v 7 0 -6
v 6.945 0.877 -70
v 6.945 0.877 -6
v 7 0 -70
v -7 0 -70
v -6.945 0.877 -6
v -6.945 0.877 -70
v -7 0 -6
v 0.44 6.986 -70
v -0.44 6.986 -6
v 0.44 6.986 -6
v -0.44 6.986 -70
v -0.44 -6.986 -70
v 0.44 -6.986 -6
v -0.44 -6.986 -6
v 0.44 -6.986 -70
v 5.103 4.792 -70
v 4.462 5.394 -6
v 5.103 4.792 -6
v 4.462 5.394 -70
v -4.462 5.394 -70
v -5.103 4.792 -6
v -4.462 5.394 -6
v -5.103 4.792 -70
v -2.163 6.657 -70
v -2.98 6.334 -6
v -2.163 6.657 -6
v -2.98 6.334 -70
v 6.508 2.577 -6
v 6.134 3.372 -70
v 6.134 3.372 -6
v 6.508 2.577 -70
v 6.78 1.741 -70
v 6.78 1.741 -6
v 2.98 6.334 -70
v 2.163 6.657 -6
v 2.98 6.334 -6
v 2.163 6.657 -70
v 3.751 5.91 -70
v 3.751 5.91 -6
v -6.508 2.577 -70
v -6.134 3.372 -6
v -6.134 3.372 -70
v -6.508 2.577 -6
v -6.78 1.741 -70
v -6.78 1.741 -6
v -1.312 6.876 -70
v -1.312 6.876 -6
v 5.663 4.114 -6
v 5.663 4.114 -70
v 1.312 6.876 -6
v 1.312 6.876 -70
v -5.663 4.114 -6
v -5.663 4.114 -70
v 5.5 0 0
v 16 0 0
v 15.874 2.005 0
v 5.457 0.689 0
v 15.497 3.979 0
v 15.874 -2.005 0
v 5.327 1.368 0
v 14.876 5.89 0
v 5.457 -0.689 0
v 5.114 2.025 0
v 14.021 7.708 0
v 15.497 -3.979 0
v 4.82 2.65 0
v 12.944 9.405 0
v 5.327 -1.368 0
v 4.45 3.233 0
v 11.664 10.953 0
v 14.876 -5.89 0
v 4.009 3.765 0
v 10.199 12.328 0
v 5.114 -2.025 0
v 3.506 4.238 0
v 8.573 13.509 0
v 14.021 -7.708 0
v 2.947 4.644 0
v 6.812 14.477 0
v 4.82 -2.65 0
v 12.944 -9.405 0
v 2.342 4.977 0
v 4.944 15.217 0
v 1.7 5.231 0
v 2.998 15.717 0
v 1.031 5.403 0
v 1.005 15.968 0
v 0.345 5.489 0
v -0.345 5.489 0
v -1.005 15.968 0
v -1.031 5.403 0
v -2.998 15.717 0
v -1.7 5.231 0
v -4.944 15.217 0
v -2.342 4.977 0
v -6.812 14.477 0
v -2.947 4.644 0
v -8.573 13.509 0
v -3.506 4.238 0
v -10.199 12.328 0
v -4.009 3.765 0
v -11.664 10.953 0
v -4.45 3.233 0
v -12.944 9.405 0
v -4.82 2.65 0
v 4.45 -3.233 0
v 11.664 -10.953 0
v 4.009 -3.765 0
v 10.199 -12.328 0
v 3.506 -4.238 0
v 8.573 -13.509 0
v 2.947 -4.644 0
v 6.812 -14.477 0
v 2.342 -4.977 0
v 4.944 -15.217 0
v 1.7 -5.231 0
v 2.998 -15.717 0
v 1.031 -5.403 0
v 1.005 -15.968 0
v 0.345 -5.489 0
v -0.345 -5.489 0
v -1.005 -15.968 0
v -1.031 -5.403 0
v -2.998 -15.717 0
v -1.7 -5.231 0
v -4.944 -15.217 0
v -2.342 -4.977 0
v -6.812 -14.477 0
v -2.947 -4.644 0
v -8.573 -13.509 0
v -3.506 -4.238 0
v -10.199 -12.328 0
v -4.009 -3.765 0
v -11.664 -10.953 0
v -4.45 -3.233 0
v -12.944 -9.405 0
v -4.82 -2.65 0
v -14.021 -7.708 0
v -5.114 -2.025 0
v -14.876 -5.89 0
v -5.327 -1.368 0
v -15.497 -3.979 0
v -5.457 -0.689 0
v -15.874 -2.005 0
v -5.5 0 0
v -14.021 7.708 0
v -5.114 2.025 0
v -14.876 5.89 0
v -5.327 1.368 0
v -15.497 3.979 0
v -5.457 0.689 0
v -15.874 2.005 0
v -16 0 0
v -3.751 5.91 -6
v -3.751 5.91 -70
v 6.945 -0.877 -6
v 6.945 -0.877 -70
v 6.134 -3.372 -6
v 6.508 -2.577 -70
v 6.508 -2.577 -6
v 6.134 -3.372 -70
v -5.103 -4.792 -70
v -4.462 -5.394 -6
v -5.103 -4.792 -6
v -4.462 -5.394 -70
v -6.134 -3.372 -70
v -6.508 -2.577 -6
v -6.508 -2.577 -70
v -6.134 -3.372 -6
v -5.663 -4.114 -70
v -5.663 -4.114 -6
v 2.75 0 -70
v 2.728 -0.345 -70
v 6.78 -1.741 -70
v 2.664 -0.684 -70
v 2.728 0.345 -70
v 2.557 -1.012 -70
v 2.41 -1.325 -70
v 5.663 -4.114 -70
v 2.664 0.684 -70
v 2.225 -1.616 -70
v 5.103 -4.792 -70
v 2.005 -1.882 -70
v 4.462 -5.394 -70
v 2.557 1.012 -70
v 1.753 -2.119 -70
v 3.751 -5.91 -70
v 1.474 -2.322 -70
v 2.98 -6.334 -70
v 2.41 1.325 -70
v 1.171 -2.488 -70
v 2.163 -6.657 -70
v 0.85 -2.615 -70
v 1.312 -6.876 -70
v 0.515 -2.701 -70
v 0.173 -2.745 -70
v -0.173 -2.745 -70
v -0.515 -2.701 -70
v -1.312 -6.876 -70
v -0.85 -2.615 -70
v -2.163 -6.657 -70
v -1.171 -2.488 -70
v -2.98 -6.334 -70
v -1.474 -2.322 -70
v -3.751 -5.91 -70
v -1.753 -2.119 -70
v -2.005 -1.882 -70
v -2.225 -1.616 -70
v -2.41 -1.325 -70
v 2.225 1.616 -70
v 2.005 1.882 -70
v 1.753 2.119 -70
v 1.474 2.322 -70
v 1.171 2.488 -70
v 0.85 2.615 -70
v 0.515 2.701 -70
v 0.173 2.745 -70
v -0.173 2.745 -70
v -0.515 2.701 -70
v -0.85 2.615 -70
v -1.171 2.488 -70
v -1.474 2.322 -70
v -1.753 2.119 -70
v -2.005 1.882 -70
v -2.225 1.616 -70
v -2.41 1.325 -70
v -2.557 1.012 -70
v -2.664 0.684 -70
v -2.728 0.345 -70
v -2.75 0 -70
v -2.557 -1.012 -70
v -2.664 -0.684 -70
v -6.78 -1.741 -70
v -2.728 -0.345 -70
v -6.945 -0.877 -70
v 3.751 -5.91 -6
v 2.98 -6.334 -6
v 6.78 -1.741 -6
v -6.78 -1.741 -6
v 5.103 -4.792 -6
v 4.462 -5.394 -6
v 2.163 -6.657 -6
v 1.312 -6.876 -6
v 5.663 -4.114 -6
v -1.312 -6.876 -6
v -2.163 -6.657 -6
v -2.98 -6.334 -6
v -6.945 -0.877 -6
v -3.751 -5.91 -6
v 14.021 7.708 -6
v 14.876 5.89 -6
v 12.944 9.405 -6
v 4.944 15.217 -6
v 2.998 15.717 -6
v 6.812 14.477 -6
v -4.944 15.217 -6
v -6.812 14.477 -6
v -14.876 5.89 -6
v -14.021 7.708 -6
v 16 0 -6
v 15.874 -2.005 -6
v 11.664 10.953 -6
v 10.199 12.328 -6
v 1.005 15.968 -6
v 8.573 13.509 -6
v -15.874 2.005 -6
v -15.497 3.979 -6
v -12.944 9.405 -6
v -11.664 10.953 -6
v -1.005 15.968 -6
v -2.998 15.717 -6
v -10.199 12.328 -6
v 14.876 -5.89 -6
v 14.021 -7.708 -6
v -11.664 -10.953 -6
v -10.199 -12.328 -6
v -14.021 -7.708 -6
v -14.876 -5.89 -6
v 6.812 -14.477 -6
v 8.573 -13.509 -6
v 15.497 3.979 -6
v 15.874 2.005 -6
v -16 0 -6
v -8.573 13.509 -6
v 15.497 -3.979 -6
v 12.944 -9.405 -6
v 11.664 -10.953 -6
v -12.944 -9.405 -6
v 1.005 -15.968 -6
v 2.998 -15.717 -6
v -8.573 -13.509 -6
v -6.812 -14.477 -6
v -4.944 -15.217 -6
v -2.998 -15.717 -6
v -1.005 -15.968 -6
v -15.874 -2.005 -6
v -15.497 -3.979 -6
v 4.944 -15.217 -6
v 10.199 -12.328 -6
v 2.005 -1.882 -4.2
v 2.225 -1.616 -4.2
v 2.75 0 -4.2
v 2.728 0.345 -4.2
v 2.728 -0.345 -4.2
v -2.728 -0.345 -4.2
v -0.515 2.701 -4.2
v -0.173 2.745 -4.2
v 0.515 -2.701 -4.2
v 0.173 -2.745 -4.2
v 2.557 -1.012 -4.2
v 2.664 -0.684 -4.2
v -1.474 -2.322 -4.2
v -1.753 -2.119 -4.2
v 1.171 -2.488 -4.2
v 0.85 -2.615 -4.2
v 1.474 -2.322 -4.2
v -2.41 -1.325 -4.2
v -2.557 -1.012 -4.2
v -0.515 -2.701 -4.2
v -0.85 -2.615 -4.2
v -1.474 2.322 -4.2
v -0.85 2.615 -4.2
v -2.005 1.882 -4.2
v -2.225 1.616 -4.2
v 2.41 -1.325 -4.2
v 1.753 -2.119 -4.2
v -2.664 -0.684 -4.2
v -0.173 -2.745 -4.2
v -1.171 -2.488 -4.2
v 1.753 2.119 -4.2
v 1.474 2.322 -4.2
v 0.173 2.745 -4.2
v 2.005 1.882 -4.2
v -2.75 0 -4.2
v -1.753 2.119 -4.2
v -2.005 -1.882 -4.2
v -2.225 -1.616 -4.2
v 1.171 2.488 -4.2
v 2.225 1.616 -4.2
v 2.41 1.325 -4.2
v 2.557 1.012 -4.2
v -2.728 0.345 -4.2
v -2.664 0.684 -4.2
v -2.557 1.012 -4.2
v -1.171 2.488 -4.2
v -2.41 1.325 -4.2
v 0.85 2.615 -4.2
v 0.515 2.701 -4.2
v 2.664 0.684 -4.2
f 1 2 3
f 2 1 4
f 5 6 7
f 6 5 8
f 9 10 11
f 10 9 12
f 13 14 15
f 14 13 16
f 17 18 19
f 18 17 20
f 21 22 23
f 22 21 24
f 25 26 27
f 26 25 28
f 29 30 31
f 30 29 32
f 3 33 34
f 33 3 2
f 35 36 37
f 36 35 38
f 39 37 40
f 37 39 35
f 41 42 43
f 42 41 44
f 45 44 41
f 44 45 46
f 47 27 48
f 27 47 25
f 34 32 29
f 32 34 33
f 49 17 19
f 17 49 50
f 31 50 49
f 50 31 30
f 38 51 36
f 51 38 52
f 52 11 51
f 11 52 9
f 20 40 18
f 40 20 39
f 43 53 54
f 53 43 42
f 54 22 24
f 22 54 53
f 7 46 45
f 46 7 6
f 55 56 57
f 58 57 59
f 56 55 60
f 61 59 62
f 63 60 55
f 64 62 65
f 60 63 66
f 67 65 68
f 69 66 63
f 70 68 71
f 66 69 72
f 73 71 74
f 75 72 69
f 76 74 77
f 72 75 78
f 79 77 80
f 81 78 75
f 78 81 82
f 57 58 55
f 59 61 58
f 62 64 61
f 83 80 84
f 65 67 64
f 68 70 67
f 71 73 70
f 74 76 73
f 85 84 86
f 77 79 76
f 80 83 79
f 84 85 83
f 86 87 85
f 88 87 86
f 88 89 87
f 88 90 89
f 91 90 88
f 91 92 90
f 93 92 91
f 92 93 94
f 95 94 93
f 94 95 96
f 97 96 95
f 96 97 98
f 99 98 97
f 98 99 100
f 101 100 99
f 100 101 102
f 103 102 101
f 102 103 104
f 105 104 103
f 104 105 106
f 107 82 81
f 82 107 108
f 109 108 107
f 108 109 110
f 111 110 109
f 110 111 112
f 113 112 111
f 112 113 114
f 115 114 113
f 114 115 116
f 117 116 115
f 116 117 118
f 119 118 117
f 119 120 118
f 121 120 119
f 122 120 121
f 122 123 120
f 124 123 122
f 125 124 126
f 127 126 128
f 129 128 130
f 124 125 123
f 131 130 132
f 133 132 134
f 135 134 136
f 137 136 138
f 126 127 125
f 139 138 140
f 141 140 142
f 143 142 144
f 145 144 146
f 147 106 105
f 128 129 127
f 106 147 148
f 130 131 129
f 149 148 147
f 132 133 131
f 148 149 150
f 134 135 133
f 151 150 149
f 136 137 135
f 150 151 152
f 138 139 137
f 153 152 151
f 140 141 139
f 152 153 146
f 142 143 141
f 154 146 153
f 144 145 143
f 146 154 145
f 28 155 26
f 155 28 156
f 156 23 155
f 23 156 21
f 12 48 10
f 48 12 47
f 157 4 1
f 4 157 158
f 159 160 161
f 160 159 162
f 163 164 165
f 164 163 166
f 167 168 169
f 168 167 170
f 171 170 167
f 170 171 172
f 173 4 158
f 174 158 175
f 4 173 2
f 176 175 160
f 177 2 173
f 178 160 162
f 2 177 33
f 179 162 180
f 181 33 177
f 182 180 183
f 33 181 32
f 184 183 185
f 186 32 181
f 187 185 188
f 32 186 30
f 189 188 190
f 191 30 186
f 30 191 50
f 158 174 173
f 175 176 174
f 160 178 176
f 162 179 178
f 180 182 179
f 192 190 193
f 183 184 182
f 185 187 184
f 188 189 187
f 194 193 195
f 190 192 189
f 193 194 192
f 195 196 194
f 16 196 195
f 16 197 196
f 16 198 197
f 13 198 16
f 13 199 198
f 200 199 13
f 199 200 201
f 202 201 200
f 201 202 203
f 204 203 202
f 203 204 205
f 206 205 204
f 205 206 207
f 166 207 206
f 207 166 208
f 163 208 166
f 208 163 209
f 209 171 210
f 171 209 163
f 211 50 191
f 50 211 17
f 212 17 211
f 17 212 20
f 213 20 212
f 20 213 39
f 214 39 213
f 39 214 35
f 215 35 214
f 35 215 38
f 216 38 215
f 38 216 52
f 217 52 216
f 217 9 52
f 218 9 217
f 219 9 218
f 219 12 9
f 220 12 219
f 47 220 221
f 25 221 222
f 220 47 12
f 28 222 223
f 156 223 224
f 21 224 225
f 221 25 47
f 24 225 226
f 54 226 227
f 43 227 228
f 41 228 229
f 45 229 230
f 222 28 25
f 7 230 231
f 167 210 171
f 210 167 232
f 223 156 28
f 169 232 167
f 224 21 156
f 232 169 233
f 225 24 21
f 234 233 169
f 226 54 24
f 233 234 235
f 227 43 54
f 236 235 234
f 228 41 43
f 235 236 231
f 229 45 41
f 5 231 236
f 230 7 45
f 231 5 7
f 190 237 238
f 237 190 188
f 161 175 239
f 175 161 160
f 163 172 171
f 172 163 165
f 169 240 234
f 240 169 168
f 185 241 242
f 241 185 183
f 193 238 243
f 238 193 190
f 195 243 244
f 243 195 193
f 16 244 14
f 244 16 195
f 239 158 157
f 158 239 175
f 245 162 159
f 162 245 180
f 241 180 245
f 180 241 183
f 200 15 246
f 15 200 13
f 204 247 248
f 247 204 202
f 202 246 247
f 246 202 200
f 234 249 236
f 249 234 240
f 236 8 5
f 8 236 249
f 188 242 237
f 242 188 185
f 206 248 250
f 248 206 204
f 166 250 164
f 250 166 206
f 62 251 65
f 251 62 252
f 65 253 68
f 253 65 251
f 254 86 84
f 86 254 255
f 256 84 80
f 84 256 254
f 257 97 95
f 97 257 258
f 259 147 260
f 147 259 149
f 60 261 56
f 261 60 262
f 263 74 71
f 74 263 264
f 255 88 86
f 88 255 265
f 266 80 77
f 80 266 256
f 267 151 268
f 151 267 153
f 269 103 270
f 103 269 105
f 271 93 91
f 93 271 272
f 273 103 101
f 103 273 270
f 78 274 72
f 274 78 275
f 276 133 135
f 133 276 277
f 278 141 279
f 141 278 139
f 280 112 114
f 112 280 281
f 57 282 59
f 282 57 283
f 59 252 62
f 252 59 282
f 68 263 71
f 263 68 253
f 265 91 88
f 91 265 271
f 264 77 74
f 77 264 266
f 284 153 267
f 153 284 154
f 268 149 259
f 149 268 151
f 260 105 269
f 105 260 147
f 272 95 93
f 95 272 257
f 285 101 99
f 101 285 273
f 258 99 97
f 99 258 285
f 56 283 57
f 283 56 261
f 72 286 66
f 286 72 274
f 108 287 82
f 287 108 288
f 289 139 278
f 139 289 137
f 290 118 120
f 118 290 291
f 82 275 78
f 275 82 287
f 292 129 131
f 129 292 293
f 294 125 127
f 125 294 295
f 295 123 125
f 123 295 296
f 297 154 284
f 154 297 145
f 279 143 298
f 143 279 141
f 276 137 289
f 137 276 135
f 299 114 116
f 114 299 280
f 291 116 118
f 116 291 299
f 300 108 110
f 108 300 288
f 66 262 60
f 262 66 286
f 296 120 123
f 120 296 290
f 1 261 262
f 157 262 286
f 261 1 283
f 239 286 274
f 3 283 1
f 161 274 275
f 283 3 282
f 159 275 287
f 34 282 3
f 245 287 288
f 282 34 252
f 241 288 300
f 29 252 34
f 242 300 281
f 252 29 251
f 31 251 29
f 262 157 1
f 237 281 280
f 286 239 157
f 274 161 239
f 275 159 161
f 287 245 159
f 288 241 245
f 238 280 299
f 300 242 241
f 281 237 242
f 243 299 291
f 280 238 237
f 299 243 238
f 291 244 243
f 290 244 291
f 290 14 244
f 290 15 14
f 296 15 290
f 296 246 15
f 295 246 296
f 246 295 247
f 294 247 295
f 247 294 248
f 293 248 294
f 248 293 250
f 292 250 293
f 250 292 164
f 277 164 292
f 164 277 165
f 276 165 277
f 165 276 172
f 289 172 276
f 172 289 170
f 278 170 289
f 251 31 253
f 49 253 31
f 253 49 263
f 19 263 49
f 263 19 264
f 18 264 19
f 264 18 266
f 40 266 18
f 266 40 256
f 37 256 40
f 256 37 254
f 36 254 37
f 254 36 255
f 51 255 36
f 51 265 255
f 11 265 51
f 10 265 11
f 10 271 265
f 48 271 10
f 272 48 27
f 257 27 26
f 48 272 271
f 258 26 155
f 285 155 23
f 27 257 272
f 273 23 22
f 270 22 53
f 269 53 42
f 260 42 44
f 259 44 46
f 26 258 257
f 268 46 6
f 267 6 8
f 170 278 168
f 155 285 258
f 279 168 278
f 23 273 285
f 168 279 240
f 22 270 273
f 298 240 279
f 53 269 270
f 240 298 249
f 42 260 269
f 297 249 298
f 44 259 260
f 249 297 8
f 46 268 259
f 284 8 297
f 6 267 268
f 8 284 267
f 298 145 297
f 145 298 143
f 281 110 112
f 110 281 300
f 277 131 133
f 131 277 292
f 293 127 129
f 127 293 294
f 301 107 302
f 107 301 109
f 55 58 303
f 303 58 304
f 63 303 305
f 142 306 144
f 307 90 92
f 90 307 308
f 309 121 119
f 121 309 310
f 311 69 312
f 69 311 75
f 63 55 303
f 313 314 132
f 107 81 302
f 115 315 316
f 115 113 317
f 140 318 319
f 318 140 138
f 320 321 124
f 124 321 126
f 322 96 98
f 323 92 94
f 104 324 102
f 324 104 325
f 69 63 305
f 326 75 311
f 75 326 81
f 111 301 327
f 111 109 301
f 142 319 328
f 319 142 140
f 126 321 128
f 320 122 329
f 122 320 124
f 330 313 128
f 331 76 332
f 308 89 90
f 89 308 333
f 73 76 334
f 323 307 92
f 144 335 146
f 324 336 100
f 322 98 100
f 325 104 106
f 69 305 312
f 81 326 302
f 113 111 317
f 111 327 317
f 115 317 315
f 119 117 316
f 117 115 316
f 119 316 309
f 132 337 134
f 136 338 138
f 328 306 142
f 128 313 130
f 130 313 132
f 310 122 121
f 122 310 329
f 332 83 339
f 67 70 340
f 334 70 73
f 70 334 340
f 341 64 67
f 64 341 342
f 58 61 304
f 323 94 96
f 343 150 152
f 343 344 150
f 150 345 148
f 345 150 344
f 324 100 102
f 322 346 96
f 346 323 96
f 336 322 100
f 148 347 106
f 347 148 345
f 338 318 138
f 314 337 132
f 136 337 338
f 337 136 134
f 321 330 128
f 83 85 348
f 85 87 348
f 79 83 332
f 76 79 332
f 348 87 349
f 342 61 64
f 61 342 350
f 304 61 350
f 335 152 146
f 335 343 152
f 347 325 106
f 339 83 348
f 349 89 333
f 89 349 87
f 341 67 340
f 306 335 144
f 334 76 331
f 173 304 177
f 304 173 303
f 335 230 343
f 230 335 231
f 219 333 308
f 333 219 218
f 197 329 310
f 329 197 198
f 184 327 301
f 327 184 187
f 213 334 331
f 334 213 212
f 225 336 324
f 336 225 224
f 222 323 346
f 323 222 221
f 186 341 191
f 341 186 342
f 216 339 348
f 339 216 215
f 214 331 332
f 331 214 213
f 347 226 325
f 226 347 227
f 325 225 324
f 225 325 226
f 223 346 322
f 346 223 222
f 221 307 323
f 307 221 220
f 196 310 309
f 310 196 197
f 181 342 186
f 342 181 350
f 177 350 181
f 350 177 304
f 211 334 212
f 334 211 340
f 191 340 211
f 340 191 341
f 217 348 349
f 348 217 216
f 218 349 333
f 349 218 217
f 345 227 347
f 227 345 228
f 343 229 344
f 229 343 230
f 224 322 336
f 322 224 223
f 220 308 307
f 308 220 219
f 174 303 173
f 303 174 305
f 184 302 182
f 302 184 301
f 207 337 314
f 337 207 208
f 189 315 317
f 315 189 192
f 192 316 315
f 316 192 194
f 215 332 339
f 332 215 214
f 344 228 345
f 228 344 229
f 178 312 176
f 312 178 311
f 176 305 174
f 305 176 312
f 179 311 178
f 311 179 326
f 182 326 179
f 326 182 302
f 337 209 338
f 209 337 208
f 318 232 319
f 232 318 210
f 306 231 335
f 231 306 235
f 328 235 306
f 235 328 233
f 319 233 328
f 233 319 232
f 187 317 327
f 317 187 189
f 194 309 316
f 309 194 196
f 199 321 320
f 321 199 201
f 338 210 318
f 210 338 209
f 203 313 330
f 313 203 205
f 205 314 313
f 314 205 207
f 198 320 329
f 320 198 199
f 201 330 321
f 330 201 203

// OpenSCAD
$fn = 50;


difference() {
	union() {
		translate(v = [0, 0, -70.0000000000]) {
			cylinder(h = 70, r = 7.0000000000);
		}
		translate(v = [0, 0, -6.0000000000]) {
			cylinder(h = 6, r = 16.0000000000);
		}
	}
	union() {
		translate(v = [0, 0, 0]) {
			rotate(a = [0, 0, 0]) {
				difference() {
					union() {
						#translate(v = [0, 0, -70.0000000000]) {
							cylinder(h = 70, r = 2.2500000000);
						}
						#translate(v = [0, 0, -4.2000000000]) {
							cylinder(h = 4.2000000000, r = 7.0000000000, r1 = 2.7500000000, r2 = 5.5000000000);
						}
						#translate(v = [0, 0, -70.0000000000]) {
							cylinder(h = 70, r = 2.7500000000);
						}
						#translate(v = [0, 0, -70.0000000000]) {
							cylinder(h = 70, r = 2.2500000000);
						}
					}
					union();
				}
			}
		}
	}
}
